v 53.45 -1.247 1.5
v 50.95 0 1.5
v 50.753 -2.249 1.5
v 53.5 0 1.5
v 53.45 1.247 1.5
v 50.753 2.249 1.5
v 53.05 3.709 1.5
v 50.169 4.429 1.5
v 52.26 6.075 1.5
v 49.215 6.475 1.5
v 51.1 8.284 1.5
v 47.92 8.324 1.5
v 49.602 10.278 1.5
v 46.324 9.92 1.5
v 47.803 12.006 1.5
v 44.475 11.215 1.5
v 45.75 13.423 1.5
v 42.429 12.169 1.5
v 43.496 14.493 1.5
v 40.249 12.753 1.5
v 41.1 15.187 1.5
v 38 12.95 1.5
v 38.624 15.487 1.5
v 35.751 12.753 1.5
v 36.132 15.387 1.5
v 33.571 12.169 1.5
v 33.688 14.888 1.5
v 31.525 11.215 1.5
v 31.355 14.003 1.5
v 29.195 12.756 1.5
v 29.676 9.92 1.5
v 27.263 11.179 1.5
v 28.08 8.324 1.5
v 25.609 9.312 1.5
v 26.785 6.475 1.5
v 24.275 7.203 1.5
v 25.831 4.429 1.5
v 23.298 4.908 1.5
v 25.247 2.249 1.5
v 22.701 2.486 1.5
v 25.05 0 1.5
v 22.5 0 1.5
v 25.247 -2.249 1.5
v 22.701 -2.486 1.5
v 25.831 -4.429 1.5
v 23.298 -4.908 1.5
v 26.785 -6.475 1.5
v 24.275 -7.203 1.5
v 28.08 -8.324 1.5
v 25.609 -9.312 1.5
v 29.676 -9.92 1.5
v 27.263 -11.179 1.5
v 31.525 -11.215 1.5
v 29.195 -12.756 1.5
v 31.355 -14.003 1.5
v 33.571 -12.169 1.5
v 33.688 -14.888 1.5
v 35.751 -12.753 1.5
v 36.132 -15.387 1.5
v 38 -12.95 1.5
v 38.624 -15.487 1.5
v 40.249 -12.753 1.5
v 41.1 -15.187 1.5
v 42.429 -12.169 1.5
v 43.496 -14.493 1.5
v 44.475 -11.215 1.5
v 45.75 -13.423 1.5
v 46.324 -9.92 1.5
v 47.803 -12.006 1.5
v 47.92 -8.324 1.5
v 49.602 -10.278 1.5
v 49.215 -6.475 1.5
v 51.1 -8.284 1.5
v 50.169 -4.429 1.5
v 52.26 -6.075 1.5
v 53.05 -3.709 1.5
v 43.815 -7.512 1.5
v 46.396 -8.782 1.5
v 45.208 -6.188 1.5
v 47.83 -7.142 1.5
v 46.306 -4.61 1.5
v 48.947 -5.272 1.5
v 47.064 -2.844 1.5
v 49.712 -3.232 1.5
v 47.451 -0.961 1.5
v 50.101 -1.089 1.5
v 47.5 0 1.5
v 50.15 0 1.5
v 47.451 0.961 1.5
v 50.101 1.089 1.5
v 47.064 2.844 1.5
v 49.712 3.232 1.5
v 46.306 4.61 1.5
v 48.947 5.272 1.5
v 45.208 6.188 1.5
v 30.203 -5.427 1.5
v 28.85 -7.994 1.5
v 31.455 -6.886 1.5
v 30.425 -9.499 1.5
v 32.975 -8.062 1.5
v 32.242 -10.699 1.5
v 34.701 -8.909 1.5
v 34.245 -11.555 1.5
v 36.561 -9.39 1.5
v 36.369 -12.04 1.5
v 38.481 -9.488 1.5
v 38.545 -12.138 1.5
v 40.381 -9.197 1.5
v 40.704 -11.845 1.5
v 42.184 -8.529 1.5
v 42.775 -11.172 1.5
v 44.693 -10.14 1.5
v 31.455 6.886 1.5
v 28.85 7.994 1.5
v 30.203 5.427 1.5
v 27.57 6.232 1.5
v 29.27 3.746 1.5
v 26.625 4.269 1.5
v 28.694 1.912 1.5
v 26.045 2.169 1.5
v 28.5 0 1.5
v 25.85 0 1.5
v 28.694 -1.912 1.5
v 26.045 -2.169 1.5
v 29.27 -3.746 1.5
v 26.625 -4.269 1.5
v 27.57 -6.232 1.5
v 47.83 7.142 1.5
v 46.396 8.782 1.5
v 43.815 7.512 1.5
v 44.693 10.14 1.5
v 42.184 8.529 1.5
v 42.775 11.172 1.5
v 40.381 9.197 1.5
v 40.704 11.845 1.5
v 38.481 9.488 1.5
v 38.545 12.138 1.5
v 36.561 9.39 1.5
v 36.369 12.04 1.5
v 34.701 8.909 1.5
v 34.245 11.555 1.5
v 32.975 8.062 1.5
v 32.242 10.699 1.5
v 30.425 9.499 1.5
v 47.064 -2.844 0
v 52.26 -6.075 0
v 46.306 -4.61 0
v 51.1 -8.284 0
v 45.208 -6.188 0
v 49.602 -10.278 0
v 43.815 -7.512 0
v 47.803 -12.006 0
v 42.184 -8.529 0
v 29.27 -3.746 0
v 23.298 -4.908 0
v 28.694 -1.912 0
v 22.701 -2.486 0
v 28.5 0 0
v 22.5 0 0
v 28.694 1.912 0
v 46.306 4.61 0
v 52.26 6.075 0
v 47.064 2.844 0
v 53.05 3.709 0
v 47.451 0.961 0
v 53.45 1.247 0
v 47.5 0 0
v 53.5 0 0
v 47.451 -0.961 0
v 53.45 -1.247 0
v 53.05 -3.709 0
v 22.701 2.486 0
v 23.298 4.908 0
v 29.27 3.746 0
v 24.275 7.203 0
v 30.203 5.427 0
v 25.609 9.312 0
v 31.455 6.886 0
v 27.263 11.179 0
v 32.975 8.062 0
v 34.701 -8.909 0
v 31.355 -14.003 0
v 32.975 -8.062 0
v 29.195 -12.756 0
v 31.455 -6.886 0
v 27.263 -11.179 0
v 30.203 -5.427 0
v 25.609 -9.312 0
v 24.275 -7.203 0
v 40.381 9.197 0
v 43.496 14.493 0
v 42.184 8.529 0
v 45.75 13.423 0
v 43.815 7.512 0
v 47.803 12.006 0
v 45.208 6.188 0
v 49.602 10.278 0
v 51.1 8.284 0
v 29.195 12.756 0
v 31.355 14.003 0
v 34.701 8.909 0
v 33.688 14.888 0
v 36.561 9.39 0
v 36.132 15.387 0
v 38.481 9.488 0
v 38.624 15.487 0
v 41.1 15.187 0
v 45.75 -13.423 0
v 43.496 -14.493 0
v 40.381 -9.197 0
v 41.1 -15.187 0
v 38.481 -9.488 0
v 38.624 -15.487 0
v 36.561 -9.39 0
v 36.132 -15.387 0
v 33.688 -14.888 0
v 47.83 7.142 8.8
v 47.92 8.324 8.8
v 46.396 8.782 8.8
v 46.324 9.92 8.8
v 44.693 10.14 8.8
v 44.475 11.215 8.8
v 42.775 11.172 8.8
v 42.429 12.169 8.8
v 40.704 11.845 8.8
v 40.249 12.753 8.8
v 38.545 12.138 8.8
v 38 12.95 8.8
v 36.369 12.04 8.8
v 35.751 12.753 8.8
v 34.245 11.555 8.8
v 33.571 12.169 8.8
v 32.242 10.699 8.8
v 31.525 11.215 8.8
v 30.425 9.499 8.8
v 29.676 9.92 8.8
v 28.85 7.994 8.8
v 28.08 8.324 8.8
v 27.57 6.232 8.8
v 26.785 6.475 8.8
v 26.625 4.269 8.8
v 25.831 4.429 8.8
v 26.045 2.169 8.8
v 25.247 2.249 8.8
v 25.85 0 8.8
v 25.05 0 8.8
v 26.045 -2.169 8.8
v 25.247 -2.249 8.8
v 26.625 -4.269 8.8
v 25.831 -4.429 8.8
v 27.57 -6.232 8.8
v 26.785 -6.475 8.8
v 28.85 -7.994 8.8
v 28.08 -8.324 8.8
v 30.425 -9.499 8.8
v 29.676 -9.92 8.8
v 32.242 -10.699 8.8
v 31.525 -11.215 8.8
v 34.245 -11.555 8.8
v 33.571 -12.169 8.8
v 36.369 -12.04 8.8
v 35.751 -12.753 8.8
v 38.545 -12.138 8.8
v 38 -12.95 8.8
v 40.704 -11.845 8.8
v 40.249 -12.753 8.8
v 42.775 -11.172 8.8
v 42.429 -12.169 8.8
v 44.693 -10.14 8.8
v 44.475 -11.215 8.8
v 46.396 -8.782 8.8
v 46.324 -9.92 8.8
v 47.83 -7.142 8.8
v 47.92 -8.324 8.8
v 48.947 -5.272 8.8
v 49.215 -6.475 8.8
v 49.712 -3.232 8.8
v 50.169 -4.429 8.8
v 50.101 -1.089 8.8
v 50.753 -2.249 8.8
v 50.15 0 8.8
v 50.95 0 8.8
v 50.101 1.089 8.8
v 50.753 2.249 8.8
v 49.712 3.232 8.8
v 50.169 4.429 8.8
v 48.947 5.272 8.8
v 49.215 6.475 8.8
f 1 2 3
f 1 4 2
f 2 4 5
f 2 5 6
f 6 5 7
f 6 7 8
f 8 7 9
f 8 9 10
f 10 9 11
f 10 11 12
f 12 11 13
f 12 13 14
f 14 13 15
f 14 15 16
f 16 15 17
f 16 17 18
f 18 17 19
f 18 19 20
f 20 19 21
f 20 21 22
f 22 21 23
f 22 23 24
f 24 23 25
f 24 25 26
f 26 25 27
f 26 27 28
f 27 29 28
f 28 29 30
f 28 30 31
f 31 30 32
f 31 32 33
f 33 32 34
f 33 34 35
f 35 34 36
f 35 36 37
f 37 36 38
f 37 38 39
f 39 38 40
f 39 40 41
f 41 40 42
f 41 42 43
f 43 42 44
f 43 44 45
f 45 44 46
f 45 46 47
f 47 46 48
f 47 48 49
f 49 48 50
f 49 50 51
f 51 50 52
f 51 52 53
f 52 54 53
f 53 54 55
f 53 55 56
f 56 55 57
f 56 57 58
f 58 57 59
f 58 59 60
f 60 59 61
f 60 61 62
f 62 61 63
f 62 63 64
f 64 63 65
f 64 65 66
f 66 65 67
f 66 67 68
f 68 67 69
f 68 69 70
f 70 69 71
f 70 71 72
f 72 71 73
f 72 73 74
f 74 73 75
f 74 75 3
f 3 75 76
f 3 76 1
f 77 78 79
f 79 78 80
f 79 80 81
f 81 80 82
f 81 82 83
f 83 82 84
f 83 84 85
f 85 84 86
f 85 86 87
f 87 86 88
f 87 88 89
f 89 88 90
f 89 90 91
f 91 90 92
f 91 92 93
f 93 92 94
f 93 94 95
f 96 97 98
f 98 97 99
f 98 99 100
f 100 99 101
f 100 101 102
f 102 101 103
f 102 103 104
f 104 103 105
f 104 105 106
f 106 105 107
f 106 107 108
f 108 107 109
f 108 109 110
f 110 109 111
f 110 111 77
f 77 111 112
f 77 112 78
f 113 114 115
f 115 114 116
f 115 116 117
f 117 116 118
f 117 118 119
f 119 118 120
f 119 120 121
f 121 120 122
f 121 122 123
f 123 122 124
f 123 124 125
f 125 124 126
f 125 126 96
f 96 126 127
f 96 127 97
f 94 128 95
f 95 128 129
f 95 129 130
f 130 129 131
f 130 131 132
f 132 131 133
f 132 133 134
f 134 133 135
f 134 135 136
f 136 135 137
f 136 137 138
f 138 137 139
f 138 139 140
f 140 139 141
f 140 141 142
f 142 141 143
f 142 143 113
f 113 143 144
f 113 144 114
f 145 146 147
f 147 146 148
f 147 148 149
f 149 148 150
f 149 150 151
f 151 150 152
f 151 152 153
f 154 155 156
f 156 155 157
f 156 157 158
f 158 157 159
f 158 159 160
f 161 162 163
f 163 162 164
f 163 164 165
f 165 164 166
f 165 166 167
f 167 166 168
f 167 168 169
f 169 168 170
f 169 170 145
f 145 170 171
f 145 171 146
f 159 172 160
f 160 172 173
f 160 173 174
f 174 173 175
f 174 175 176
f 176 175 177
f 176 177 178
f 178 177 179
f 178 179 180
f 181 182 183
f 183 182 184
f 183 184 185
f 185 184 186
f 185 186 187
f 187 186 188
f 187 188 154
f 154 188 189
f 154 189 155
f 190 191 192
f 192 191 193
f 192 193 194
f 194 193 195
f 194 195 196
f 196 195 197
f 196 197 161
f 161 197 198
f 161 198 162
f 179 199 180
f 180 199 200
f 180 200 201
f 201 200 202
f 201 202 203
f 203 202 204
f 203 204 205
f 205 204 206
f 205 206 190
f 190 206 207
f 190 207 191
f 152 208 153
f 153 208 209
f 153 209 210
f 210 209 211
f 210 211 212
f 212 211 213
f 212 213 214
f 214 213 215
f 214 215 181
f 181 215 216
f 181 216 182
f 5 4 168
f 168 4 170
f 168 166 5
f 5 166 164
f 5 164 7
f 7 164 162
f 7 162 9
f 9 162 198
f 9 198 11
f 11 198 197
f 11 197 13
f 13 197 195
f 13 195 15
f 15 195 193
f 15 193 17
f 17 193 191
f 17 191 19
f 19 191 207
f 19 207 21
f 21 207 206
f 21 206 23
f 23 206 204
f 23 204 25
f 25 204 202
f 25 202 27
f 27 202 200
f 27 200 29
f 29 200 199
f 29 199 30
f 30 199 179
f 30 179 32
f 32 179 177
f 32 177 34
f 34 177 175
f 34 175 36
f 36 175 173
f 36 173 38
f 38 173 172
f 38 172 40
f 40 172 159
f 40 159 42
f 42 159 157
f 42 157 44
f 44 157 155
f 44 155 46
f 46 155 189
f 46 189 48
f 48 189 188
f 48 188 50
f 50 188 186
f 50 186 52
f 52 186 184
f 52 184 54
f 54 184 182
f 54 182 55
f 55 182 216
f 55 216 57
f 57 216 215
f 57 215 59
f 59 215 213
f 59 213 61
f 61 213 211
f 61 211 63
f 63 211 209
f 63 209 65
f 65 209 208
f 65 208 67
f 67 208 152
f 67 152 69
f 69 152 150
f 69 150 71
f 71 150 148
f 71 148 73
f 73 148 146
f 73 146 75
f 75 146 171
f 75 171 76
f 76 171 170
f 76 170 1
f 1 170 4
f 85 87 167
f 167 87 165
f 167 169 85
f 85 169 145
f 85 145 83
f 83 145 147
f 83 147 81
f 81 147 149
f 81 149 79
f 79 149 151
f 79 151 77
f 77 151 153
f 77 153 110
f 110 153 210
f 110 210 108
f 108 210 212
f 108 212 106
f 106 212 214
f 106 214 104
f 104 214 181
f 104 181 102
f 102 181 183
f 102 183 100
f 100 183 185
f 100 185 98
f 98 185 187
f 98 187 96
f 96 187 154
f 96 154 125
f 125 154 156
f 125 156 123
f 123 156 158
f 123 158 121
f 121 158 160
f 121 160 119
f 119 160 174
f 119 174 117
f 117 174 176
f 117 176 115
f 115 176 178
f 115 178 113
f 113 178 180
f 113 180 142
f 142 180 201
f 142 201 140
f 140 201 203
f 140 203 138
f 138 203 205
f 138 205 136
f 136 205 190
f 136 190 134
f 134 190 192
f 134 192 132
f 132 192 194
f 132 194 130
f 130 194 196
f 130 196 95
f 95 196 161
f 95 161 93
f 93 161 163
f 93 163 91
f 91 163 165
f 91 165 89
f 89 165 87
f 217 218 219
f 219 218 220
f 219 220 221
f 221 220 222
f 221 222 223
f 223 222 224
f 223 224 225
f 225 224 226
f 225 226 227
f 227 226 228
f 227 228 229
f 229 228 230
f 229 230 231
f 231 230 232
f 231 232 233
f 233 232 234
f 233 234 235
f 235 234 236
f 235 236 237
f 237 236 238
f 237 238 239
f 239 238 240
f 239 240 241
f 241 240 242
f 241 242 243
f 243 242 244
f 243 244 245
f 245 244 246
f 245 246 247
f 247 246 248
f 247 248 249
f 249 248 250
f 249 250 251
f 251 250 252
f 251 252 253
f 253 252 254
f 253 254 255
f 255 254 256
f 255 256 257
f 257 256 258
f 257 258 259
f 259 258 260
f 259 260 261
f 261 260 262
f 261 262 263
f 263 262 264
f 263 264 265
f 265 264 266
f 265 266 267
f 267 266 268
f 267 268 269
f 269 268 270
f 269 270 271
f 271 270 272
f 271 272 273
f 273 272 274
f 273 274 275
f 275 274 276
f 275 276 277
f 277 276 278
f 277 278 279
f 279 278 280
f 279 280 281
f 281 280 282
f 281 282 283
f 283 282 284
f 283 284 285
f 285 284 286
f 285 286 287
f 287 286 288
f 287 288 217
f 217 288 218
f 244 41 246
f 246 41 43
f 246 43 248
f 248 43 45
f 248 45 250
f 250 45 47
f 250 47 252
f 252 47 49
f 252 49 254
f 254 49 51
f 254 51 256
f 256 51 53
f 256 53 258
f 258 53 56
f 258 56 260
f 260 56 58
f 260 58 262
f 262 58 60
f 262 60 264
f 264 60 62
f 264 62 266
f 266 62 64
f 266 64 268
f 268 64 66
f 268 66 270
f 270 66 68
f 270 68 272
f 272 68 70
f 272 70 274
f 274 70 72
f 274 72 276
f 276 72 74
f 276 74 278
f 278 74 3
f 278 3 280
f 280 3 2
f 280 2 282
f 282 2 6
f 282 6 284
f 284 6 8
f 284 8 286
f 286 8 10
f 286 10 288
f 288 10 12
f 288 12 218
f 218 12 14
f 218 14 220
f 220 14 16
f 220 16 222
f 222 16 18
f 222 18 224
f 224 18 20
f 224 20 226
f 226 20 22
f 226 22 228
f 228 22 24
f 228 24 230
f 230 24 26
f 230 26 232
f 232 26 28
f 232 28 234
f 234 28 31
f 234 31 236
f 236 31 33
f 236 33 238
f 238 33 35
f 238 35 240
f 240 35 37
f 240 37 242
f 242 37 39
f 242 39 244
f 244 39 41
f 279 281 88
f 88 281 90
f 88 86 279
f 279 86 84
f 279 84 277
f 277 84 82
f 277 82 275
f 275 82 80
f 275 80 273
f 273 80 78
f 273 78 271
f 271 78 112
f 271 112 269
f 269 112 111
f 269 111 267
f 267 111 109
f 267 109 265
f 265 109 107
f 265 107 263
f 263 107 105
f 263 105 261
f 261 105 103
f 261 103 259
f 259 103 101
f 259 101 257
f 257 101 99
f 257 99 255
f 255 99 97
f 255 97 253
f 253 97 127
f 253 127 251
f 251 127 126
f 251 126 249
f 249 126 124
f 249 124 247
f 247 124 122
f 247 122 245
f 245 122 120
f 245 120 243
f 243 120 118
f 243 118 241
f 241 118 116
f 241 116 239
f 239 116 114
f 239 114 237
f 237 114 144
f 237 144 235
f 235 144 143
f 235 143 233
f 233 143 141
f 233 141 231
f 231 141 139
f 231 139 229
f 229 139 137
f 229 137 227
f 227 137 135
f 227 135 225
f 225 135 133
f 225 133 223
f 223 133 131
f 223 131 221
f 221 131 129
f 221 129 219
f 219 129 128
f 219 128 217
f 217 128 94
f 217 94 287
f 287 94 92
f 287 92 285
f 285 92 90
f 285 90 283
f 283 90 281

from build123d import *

# Parameters (mm, degrees)
CROQUIS3_R              = 15.5
CROQUIS3_R_2            = 9.5
SALIENTE_EXTRUIR3_DEPTH = 1.5
CROQUIS4_R              = 12.95
CROQUIS4_R_2            = 12.15
SALIENTE_EXTRUIR4_DEPTH = 7.3


with BuildPart() as part:
    # Croquis3 → Saliente-Extruir3 (new body)
    with BuildSketch(Plane.XY):
        with Locations((38, 0)):
            Circle(CROQUIS3_R)
        with Locations((38, 0)):
            Circle(CROQUIS3_R_2, mode=Mode.SUBTRACT)
    extrude(amount=SALIENTE_EXTRUIR3_DEPTH)

    # Croquis4 → Saliente-Extruir4 (add)
    with BuildSketch(Plane.XY.offset(1.5)):
        with Locations((38, 0)):
            Circle(CROQUIS4_R)
        with Locations((38, 0)):
            Circle(CROQUIS4_R_2, mode=Mode.SUBTRACT)
    extrude(amount=SALIENTE_EXTRUIR4_DEPTH)


solid = part.part
